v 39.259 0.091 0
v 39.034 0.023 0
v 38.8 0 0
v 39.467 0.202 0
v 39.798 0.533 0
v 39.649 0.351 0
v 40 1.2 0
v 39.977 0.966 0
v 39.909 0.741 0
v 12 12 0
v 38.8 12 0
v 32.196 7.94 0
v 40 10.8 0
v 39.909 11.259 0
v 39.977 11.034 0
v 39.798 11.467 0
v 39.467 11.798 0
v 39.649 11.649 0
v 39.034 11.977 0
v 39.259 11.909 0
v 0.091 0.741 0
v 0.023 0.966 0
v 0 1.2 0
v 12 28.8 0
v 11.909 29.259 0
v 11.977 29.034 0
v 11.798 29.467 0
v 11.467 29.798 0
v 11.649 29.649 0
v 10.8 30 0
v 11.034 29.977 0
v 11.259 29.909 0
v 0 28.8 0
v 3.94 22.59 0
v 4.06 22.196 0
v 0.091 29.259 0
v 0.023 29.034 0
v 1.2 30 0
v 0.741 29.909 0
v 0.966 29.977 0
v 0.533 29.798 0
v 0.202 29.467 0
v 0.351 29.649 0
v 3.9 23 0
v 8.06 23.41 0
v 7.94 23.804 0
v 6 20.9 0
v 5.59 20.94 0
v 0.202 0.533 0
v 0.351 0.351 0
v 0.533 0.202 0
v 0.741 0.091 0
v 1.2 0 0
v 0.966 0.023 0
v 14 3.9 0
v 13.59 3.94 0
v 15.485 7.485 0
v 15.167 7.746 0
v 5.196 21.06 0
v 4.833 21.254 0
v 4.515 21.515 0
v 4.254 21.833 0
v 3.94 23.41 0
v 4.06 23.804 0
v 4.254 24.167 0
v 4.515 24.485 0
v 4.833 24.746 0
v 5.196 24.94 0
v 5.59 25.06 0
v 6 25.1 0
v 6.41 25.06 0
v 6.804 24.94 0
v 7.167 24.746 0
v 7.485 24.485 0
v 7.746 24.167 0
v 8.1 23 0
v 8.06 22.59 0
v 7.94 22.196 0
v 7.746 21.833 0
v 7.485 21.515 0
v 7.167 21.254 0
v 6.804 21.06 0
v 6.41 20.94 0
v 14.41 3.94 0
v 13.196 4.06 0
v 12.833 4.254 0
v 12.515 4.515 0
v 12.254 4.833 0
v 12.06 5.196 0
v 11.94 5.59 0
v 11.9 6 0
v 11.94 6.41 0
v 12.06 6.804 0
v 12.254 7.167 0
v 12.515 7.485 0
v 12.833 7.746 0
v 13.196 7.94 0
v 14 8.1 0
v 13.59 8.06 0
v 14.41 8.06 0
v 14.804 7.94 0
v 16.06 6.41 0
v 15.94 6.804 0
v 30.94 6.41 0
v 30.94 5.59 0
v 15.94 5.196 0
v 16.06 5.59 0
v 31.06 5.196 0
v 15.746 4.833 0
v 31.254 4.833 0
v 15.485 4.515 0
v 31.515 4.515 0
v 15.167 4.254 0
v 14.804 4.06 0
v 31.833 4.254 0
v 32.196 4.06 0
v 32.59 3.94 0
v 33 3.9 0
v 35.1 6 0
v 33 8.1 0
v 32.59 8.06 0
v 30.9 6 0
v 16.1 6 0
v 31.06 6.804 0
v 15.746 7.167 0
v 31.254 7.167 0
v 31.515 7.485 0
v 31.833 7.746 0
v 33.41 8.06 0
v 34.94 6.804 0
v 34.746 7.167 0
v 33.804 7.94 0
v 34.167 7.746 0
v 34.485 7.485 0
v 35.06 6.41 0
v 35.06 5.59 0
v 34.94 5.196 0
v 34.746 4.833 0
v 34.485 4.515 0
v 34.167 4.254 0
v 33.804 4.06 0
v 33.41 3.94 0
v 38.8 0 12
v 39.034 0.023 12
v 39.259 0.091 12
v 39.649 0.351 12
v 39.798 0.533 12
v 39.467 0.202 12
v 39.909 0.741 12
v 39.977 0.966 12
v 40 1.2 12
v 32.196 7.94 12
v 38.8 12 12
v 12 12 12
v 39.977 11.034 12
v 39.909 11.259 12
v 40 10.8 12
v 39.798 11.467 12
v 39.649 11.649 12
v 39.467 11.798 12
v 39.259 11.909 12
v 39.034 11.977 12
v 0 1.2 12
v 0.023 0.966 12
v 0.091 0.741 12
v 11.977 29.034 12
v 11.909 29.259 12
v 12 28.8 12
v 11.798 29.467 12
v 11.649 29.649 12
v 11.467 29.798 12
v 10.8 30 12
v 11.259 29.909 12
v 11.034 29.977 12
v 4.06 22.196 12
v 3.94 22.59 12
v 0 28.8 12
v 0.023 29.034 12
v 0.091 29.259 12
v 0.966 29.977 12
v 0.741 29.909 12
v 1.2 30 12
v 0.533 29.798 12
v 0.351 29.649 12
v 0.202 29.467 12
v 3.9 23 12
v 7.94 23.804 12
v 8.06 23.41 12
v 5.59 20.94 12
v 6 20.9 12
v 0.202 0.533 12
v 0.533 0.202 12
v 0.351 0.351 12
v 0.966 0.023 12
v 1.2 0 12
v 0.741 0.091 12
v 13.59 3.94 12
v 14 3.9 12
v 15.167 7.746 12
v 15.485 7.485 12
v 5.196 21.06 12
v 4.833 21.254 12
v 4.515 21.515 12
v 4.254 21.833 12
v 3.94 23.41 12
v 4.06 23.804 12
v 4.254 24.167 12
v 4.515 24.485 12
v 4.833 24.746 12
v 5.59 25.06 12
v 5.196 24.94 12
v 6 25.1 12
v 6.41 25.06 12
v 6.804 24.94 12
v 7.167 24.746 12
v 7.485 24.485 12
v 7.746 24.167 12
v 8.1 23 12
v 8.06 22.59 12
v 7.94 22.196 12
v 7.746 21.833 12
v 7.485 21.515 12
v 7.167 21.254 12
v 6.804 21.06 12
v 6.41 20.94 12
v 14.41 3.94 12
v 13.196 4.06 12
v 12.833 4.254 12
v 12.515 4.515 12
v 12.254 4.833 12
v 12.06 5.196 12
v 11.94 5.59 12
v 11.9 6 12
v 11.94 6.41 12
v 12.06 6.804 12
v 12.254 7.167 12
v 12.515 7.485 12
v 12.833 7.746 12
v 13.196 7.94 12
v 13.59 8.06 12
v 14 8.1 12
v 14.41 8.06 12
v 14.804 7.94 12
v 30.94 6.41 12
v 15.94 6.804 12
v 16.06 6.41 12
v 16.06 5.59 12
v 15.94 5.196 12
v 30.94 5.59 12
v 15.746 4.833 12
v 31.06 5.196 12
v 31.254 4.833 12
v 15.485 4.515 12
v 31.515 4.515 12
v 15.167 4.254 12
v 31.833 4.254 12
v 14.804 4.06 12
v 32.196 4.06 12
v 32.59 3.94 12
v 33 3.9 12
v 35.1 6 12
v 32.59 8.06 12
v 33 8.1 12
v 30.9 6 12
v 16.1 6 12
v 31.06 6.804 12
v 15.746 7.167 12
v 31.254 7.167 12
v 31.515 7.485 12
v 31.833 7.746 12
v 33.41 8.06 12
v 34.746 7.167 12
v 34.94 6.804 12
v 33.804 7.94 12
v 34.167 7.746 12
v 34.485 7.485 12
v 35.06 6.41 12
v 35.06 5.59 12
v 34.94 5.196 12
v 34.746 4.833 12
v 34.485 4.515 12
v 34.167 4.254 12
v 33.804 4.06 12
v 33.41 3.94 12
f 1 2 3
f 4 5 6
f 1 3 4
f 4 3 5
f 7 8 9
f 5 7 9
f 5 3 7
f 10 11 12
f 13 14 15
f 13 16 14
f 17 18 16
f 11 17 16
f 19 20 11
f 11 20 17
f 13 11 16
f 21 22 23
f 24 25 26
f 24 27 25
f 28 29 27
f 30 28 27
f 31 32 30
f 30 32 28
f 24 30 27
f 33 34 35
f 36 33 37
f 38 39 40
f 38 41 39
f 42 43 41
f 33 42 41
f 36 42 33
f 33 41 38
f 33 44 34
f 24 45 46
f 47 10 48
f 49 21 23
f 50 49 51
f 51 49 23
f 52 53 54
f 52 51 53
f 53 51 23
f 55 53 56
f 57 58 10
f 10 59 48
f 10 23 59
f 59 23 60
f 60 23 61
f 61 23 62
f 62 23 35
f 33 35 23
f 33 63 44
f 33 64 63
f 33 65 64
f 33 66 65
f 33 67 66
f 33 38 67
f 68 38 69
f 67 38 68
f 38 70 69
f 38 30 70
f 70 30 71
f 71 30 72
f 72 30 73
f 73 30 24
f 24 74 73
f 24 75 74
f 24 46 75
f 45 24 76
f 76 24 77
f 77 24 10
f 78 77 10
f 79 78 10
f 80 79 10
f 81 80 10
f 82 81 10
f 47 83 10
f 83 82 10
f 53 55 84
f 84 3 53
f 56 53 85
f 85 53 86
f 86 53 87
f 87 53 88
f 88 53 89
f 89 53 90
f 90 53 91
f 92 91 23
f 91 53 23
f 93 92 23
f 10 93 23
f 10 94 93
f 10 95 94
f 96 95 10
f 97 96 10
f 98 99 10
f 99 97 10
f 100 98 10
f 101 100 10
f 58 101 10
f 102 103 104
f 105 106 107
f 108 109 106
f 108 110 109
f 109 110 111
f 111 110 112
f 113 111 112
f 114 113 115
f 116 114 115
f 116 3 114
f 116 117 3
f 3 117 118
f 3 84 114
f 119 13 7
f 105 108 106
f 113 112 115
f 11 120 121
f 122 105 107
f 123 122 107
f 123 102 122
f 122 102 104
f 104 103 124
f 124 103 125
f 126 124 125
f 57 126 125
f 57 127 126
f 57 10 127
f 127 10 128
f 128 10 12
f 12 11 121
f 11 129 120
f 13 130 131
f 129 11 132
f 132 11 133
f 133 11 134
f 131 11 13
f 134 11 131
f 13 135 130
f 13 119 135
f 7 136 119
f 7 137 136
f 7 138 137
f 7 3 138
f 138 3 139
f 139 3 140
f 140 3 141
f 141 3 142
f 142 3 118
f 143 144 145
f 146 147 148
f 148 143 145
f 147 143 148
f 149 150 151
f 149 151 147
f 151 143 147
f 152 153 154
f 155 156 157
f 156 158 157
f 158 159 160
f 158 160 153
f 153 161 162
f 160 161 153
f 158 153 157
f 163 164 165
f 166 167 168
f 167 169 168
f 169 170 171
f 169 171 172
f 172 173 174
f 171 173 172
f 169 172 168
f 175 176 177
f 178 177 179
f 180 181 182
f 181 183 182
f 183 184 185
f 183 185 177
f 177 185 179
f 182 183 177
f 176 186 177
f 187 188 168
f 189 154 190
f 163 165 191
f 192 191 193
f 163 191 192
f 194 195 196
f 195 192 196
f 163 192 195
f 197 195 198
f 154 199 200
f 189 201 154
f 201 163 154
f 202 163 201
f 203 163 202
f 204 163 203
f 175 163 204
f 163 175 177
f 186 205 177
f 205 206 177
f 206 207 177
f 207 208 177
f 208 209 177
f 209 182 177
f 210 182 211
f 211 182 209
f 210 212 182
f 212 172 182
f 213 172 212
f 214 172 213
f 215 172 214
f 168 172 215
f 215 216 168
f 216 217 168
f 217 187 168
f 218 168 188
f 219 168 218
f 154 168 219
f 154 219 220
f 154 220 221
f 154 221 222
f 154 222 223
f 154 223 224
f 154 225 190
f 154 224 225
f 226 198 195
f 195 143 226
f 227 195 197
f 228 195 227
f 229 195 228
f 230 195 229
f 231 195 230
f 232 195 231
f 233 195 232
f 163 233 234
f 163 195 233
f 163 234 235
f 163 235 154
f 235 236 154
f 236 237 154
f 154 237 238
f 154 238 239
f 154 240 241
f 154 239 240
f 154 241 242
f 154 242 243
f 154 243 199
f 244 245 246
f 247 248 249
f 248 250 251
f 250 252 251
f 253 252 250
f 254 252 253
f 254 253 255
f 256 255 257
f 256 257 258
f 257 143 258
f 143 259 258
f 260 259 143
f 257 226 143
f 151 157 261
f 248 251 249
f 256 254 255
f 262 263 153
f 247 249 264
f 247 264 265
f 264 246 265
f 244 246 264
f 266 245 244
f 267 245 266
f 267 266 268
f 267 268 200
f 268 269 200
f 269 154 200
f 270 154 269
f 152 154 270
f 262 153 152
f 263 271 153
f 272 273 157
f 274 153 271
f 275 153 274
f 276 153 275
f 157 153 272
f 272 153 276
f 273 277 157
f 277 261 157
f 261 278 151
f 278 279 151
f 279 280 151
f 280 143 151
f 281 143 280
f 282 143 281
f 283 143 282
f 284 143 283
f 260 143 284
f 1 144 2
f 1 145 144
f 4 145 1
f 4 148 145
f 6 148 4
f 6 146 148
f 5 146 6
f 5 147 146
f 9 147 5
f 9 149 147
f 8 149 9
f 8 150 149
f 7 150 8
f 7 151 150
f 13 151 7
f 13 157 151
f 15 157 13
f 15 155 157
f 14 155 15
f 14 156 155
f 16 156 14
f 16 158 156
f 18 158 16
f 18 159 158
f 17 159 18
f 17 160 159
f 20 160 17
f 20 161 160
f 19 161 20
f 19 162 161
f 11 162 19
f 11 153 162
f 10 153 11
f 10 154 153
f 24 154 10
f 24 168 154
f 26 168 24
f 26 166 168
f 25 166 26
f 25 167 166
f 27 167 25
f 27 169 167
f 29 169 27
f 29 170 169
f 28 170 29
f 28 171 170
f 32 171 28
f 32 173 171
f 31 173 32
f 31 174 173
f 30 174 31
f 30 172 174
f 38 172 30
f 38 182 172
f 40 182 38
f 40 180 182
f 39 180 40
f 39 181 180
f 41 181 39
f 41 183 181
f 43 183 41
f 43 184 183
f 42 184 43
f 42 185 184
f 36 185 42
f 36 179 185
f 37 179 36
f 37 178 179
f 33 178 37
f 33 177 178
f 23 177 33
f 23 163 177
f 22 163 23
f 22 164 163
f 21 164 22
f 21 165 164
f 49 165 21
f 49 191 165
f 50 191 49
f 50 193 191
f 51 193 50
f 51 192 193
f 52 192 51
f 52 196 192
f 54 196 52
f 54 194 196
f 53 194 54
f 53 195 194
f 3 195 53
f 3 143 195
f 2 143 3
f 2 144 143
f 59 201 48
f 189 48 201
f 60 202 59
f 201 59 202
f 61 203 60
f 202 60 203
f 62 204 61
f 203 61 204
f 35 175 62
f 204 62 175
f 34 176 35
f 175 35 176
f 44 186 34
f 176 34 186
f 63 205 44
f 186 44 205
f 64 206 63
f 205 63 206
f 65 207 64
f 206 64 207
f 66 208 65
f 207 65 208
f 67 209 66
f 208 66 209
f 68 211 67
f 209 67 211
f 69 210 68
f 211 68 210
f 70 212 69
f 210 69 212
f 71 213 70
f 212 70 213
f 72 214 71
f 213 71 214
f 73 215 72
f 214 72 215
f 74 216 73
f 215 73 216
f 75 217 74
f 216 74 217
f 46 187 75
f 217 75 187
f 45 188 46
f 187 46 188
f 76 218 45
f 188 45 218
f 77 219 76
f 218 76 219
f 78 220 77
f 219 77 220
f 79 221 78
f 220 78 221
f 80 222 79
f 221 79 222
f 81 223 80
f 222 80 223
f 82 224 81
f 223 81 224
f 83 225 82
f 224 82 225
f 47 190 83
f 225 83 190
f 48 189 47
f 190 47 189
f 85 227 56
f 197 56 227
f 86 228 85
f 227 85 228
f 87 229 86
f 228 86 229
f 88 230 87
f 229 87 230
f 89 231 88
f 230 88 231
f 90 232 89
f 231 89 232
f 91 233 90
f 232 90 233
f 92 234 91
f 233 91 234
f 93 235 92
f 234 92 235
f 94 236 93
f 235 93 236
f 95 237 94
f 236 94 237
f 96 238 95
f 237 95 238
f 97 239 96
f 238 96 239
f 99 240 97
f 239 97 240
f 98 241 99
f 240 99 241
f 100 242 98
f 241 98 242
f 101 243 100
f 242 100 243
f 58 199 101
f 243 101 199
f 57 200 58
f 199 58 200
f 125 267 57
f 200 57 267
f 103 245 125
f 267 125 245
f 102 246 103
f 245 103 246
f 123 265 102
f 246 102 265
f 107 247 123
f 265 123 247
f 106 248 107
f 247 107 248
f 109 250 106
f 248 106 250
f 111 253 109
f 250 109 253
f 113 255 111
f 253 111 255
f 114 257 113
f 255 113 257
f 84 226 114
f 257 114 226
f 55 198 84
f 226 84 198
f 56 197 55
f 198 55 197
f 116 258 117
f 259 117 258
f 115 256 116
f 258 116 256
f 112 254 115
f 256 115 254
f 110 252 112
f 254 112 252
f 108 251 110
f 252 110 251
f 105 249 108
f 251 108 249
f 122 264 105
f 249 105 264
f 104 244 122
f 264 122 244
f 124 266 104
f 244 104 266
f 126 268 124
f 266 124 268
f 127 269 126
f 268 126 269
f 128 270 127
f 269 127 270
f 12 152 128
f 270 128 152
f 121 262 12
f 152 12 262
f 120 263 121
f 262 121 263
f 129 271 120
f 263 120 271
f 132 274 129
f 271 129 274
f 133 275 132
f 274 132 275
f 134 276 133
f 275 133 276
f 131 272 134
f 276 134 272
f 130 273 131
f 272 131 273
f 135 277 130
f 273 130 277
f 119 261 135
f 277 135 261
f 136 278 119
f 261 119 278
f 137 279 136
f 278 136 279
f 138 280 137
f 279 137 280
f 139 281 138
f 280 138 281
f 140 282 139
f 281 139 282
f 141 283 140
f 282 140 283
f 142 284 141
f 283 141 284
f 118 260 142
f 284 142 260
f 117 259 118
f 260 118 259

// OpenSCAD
// Printable L-bracket coupon. L-profile in XY, extruded in Z (bed = XY).
// Units: millimetres.

object_x = 40;
object_y = 30;
object_z = 12;
flange = 12;
hole_d = 4.2;
hole_inset = 7;
$fn = 32;

module l_2d() {
    offset(r = 1.2)
        offset(delta = -1.2)
            union() {
                square([object_x, flange]);
                square([flange, object_y]);
            }
}

module holes_2d() {
    translate([14, flange / 2])
        circle(d = hole_d);
    translate([object_x - hole_inset, flange / 2])
        circle(d = hole_d);
    translate([flange / 2, object_y - hole_inset])
        circle(d = hole_d);
}

linear_extrude(height = object_z, convexity = 4)
    difference() {
        l_2d();
        holes_2d();
    }
